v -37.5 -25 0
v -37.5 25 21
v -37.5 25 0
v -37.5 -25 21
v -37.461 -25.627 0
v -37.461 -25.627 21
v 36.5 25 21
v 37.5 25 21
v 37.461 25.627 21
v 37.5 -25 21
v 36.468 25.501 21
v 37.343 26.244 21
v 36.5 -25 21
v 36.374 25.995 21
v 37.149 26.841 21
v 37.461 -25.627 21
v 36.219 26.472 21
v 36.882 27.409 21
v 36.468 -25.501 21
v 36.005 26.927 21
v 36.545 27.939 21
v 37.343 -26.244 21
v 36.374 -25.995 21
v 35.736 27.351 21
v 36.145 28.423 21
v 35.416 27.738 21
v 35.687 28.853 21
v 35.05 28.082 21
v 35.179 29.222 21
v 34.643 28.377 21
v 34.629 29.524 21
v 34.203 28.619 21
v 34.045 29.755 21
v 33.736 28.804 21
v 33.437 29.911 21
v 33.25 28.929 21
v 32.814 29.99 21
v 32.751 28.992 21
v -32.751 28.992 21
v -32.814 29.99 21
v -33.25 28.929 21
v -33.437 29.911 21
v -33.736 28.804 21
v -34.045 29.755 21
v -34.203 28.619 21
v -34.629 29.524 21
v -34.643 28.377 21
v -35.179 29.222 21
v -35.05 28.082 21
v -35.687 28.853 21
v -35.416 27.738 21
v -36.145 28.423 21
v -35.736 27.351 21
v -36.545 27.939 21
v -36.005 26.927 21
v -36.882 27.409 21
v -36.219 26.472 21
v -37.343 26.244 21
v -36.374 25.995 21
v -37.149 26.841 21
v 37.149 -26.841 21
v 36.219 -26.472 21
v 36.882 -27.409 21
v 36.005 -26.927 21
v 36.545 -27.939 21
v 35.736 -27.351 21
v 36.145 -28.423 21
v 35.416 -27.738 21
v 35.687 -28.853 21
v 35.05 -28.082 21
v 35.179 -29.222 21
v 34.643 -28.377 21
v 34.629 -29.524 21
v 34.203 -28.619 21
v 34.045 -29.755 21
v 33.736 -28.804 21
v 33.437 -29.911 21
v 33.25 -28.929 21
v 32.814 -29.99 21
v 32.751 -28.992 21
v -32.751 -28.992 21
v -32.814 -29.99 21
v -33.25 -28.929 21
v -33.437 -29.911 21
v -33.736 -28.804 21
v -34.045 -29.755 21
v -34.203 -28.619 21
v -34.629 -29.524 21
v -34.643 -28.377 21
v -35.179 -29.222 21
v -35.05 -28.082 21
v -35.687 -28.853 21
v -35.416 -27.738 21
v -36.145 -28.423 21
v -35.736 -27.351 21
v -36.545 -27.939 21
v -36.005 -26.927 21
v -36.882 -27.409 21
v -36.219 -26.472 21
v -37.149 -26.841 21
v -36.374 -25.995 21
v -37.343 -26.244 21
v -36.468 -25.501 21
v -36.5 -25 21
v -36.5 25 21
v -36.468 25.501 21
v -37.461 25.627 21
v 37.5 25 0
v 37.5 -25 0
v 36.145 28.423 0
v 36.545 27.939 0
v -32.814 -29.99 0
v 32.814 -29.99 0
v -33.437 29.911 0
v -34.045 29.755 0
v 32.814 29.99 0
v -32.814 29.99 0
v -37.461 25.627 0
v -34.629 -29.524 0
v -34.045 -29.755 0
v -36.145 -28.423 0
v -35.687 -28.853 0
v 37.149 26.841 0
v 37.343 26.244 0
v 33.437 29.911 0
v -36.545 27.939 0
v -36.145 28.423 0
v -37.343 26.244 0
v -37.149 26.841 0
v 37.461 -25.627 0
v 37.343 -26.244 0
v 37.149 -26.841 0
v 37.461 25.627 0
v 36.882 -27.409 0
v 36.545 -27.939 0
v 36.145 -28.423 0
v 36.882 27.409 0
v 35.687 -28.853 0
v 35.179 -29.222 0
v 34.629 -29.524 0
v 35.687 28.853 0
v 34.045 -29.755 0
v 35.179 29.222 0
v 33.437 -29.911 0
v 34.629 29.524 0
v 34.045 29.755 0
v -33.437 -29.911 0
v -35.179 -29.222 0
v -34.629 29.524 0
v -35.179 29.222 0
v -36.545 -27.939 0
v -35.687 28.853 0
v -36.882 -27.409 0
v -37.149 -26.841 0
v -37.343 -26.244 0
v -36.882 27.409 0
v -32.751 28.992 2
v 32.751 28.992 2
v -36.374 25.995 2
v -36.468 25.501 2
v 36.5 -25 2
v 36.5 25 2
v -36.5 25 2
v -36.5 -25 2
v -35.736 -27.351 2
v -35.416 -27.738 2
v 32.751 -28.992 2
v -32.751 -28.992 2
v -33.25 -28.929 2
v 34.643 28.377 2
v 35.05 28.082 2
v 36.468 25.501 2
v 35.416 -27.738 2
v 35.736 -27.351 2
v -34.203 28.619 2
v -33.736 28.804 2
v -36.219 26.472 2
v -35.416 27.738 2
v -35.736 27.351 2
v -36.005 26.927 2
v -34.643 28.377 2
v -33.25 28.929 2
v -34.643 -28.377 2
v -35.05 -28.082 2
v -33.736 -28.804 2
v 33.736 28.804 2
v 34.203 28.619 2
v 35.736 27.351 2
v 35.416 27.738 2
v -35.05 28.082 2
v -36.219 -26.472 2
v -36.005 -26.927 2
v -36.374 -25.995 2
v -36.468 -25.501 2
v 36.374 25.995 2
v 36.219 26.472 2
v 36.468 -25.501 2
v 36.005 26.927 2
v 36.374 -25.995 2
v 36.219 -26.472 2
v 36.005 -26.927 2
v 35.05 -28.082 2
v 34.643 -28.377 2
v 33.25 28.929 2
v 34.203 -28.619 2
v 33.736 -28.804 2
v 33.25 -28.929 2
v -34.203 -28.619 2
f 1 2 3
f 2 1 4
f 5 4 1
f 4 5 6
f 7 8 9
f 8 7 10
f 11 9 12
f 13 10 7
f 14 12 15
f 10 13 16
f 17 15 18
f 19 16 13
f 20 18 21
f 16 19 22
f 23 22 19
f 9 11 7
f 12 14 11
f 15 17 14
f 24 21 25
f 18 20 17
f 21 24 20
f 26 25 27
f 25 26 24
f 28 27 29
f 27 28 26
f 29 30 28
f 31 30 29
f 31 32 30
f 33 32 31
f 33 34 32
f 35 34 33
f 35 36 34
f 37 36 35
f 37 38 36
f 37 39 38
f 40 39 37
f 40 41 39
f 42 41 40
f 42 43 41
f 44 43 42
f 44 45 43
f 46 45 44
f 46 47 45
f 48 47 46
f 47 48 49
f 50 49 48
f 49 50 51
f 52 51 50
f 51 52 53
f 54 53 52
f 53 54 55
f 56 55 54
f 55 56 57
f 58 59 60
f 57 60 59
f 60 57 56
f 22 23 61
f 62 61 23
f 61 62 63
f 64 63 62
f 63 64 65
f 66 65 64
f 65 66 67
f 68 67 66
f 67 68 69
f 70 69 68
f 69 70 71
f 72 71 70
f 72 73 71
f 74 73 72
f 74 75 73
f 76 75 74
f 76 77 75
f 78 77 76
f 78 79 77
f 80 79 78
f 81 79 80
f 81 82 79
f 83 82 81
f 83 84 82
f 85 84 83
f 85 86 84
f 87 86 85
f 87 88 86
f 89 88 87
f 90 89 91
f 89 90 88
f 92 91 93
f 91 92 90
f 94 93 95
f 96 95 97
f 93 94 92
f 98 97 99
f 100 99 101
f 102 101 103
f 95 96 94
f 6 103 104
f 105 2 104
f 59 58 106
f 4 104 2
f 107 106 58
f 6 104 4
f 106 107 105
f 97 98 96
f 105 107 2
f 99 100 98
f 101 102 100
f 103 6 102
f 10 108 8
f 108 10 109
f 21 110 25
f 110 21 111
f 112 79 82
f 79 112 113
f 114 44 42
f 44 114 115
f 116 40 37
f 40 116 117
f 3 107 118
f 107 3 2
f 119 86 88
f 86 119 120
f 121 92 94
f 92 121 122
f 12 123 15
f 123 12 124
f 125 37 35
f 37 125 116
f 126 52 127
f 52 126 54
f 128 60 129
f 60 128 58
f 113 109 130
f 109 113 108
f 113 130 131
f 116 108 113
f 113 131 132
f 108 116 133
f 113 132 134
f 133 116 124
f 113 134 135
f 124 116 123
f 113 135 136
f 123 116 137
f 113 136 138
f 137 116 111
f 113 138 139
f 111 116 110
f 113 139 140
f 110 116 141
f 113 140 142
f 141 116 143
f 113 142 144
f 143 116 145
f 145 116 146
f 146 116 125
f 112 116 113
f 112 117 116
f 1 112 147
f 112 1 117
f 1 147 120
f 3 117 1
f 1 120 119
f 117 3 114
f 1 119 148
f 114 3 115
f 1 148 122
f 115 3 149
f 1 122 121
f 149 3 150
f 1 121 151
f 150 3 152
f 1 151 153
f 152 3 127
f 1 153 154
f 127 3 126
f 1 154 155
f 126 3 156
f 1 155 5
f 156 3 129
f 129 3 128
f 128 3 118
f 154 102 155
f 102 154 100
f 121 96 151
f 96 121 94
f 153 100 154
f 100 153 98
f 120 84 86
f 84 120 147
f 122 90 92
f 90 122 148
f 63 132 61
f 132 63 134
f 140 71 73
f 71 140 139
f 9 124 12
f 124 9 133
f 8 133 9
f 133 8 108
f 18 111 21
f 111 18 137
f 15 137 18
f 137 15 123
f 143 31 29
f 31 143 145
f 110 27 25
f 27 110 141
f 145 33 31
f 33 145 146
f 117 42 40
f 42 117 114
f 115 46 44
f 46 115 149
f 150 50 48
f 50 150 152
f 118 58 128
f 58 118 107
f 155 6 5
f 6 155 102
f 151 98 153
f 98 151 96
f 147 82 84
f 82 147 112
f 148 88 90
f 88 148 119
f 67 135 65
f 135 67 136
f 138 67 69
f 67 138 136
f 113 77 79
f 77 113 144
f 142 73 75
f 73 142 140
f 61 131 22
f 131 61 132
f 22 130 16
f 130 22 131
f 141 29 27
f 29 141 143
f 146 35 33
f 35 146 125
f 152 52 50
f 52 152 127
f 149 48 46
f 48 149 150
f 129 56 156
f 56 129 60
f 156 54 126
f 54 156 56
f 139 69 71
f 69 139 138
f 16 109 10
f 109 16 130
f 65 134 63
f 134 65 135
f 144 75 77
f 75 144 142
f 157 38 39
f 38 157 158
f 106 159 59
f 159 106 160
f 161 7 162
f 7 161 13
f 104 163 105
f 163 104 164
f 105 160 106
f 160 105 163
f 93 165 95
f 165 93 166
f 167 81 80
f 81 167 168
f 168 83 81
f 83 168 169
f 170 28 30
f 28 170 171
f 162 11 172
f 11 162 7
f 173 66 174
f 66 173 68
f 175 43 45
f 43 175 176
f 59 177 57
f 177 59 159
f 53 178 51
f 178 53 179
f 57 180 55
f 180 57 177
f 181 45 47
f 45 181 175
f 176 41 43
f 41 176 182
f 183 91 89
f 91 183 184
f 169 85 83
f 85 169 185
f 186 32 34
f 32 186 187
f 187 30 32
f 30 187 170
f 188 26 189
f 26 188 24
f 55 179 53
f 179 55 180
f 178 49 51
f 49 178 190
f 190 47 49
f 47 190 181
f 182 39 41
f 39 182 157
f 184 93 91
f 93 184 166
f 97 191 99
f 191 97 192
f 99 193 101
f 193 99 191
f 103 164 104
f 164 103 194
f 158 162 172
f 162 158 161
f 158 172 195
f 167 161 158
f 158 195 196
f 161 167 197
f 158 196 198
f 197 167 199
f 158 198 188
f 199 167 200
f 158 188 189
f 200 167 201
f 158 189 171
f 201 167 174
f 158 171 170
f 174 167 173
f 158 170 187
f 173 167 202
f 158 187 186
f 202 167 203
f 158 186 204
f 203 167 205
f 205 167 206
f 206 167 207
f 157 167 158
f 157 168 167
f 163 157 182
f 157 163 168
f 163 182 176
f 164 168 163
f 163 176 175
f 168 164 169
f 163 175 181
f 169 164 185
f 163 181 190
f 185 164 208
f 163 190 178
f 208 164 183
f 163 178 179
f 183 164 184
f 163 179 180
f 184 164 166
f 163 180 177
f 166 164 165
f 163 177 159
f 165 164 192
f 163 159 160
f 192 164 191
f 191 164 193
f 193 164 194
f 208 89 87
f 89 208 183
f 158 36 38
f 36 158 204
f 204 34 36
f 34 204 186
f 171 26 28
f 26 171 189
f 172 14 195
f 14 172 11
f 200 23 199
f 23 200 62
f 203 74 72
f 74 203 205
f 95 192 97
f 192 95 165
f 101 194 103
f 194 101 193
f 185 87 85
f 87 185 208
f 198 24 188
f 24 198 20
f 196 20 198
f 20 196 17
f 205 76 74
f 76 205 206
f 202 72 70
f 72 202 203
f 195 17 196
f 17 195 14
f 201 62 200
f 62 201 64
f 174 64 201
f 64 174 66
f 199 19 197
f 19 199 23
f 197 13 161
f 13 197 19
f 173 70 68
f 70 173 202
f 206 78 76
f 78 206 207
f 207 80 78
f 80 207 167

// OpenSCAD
$fn = 50;


difference() {
	union() {
		hull() {
			translate(v = [-32.5000000000, 25.0000000000, 0]) {
				cylinder(h = 21, r = 5);
			}
			translate(v = [32.5000000000, 25.0000000000, 0]) {
				cylinder(h = 21, r = 5);
			}
			translate(v = [-32.5000000000, -25.0000000000, 0]) {
				cylinder(h = 21, r = 5);
			}
			translate(v = [32.5000000000, -25.0000000000, 0]) {
				cylinder(h = 21, r = 5);
			}
		}
	}
	union() {
		translate(v = [0, 0, 2]) {
			#hull() {
				translate(v = [-32.5000000000, 25.0000000000, 0]) {
					cylinder(h = 19, r = 4);
				}
				translate(v = [32.5000000000, 25.0000000000, 0]) {
					cylinder(h = 19, r = 4);
				}
				translate(v = [-32.5000000000, -25.0000000000, 0]) {
					cylinder(h = 19, r = 4);
				}
				translate(v = [32.5000000000, -25.0000000000, 0]) {
					cylinder(h = 19, r = 4);
				}
			}
		}
	}
}
